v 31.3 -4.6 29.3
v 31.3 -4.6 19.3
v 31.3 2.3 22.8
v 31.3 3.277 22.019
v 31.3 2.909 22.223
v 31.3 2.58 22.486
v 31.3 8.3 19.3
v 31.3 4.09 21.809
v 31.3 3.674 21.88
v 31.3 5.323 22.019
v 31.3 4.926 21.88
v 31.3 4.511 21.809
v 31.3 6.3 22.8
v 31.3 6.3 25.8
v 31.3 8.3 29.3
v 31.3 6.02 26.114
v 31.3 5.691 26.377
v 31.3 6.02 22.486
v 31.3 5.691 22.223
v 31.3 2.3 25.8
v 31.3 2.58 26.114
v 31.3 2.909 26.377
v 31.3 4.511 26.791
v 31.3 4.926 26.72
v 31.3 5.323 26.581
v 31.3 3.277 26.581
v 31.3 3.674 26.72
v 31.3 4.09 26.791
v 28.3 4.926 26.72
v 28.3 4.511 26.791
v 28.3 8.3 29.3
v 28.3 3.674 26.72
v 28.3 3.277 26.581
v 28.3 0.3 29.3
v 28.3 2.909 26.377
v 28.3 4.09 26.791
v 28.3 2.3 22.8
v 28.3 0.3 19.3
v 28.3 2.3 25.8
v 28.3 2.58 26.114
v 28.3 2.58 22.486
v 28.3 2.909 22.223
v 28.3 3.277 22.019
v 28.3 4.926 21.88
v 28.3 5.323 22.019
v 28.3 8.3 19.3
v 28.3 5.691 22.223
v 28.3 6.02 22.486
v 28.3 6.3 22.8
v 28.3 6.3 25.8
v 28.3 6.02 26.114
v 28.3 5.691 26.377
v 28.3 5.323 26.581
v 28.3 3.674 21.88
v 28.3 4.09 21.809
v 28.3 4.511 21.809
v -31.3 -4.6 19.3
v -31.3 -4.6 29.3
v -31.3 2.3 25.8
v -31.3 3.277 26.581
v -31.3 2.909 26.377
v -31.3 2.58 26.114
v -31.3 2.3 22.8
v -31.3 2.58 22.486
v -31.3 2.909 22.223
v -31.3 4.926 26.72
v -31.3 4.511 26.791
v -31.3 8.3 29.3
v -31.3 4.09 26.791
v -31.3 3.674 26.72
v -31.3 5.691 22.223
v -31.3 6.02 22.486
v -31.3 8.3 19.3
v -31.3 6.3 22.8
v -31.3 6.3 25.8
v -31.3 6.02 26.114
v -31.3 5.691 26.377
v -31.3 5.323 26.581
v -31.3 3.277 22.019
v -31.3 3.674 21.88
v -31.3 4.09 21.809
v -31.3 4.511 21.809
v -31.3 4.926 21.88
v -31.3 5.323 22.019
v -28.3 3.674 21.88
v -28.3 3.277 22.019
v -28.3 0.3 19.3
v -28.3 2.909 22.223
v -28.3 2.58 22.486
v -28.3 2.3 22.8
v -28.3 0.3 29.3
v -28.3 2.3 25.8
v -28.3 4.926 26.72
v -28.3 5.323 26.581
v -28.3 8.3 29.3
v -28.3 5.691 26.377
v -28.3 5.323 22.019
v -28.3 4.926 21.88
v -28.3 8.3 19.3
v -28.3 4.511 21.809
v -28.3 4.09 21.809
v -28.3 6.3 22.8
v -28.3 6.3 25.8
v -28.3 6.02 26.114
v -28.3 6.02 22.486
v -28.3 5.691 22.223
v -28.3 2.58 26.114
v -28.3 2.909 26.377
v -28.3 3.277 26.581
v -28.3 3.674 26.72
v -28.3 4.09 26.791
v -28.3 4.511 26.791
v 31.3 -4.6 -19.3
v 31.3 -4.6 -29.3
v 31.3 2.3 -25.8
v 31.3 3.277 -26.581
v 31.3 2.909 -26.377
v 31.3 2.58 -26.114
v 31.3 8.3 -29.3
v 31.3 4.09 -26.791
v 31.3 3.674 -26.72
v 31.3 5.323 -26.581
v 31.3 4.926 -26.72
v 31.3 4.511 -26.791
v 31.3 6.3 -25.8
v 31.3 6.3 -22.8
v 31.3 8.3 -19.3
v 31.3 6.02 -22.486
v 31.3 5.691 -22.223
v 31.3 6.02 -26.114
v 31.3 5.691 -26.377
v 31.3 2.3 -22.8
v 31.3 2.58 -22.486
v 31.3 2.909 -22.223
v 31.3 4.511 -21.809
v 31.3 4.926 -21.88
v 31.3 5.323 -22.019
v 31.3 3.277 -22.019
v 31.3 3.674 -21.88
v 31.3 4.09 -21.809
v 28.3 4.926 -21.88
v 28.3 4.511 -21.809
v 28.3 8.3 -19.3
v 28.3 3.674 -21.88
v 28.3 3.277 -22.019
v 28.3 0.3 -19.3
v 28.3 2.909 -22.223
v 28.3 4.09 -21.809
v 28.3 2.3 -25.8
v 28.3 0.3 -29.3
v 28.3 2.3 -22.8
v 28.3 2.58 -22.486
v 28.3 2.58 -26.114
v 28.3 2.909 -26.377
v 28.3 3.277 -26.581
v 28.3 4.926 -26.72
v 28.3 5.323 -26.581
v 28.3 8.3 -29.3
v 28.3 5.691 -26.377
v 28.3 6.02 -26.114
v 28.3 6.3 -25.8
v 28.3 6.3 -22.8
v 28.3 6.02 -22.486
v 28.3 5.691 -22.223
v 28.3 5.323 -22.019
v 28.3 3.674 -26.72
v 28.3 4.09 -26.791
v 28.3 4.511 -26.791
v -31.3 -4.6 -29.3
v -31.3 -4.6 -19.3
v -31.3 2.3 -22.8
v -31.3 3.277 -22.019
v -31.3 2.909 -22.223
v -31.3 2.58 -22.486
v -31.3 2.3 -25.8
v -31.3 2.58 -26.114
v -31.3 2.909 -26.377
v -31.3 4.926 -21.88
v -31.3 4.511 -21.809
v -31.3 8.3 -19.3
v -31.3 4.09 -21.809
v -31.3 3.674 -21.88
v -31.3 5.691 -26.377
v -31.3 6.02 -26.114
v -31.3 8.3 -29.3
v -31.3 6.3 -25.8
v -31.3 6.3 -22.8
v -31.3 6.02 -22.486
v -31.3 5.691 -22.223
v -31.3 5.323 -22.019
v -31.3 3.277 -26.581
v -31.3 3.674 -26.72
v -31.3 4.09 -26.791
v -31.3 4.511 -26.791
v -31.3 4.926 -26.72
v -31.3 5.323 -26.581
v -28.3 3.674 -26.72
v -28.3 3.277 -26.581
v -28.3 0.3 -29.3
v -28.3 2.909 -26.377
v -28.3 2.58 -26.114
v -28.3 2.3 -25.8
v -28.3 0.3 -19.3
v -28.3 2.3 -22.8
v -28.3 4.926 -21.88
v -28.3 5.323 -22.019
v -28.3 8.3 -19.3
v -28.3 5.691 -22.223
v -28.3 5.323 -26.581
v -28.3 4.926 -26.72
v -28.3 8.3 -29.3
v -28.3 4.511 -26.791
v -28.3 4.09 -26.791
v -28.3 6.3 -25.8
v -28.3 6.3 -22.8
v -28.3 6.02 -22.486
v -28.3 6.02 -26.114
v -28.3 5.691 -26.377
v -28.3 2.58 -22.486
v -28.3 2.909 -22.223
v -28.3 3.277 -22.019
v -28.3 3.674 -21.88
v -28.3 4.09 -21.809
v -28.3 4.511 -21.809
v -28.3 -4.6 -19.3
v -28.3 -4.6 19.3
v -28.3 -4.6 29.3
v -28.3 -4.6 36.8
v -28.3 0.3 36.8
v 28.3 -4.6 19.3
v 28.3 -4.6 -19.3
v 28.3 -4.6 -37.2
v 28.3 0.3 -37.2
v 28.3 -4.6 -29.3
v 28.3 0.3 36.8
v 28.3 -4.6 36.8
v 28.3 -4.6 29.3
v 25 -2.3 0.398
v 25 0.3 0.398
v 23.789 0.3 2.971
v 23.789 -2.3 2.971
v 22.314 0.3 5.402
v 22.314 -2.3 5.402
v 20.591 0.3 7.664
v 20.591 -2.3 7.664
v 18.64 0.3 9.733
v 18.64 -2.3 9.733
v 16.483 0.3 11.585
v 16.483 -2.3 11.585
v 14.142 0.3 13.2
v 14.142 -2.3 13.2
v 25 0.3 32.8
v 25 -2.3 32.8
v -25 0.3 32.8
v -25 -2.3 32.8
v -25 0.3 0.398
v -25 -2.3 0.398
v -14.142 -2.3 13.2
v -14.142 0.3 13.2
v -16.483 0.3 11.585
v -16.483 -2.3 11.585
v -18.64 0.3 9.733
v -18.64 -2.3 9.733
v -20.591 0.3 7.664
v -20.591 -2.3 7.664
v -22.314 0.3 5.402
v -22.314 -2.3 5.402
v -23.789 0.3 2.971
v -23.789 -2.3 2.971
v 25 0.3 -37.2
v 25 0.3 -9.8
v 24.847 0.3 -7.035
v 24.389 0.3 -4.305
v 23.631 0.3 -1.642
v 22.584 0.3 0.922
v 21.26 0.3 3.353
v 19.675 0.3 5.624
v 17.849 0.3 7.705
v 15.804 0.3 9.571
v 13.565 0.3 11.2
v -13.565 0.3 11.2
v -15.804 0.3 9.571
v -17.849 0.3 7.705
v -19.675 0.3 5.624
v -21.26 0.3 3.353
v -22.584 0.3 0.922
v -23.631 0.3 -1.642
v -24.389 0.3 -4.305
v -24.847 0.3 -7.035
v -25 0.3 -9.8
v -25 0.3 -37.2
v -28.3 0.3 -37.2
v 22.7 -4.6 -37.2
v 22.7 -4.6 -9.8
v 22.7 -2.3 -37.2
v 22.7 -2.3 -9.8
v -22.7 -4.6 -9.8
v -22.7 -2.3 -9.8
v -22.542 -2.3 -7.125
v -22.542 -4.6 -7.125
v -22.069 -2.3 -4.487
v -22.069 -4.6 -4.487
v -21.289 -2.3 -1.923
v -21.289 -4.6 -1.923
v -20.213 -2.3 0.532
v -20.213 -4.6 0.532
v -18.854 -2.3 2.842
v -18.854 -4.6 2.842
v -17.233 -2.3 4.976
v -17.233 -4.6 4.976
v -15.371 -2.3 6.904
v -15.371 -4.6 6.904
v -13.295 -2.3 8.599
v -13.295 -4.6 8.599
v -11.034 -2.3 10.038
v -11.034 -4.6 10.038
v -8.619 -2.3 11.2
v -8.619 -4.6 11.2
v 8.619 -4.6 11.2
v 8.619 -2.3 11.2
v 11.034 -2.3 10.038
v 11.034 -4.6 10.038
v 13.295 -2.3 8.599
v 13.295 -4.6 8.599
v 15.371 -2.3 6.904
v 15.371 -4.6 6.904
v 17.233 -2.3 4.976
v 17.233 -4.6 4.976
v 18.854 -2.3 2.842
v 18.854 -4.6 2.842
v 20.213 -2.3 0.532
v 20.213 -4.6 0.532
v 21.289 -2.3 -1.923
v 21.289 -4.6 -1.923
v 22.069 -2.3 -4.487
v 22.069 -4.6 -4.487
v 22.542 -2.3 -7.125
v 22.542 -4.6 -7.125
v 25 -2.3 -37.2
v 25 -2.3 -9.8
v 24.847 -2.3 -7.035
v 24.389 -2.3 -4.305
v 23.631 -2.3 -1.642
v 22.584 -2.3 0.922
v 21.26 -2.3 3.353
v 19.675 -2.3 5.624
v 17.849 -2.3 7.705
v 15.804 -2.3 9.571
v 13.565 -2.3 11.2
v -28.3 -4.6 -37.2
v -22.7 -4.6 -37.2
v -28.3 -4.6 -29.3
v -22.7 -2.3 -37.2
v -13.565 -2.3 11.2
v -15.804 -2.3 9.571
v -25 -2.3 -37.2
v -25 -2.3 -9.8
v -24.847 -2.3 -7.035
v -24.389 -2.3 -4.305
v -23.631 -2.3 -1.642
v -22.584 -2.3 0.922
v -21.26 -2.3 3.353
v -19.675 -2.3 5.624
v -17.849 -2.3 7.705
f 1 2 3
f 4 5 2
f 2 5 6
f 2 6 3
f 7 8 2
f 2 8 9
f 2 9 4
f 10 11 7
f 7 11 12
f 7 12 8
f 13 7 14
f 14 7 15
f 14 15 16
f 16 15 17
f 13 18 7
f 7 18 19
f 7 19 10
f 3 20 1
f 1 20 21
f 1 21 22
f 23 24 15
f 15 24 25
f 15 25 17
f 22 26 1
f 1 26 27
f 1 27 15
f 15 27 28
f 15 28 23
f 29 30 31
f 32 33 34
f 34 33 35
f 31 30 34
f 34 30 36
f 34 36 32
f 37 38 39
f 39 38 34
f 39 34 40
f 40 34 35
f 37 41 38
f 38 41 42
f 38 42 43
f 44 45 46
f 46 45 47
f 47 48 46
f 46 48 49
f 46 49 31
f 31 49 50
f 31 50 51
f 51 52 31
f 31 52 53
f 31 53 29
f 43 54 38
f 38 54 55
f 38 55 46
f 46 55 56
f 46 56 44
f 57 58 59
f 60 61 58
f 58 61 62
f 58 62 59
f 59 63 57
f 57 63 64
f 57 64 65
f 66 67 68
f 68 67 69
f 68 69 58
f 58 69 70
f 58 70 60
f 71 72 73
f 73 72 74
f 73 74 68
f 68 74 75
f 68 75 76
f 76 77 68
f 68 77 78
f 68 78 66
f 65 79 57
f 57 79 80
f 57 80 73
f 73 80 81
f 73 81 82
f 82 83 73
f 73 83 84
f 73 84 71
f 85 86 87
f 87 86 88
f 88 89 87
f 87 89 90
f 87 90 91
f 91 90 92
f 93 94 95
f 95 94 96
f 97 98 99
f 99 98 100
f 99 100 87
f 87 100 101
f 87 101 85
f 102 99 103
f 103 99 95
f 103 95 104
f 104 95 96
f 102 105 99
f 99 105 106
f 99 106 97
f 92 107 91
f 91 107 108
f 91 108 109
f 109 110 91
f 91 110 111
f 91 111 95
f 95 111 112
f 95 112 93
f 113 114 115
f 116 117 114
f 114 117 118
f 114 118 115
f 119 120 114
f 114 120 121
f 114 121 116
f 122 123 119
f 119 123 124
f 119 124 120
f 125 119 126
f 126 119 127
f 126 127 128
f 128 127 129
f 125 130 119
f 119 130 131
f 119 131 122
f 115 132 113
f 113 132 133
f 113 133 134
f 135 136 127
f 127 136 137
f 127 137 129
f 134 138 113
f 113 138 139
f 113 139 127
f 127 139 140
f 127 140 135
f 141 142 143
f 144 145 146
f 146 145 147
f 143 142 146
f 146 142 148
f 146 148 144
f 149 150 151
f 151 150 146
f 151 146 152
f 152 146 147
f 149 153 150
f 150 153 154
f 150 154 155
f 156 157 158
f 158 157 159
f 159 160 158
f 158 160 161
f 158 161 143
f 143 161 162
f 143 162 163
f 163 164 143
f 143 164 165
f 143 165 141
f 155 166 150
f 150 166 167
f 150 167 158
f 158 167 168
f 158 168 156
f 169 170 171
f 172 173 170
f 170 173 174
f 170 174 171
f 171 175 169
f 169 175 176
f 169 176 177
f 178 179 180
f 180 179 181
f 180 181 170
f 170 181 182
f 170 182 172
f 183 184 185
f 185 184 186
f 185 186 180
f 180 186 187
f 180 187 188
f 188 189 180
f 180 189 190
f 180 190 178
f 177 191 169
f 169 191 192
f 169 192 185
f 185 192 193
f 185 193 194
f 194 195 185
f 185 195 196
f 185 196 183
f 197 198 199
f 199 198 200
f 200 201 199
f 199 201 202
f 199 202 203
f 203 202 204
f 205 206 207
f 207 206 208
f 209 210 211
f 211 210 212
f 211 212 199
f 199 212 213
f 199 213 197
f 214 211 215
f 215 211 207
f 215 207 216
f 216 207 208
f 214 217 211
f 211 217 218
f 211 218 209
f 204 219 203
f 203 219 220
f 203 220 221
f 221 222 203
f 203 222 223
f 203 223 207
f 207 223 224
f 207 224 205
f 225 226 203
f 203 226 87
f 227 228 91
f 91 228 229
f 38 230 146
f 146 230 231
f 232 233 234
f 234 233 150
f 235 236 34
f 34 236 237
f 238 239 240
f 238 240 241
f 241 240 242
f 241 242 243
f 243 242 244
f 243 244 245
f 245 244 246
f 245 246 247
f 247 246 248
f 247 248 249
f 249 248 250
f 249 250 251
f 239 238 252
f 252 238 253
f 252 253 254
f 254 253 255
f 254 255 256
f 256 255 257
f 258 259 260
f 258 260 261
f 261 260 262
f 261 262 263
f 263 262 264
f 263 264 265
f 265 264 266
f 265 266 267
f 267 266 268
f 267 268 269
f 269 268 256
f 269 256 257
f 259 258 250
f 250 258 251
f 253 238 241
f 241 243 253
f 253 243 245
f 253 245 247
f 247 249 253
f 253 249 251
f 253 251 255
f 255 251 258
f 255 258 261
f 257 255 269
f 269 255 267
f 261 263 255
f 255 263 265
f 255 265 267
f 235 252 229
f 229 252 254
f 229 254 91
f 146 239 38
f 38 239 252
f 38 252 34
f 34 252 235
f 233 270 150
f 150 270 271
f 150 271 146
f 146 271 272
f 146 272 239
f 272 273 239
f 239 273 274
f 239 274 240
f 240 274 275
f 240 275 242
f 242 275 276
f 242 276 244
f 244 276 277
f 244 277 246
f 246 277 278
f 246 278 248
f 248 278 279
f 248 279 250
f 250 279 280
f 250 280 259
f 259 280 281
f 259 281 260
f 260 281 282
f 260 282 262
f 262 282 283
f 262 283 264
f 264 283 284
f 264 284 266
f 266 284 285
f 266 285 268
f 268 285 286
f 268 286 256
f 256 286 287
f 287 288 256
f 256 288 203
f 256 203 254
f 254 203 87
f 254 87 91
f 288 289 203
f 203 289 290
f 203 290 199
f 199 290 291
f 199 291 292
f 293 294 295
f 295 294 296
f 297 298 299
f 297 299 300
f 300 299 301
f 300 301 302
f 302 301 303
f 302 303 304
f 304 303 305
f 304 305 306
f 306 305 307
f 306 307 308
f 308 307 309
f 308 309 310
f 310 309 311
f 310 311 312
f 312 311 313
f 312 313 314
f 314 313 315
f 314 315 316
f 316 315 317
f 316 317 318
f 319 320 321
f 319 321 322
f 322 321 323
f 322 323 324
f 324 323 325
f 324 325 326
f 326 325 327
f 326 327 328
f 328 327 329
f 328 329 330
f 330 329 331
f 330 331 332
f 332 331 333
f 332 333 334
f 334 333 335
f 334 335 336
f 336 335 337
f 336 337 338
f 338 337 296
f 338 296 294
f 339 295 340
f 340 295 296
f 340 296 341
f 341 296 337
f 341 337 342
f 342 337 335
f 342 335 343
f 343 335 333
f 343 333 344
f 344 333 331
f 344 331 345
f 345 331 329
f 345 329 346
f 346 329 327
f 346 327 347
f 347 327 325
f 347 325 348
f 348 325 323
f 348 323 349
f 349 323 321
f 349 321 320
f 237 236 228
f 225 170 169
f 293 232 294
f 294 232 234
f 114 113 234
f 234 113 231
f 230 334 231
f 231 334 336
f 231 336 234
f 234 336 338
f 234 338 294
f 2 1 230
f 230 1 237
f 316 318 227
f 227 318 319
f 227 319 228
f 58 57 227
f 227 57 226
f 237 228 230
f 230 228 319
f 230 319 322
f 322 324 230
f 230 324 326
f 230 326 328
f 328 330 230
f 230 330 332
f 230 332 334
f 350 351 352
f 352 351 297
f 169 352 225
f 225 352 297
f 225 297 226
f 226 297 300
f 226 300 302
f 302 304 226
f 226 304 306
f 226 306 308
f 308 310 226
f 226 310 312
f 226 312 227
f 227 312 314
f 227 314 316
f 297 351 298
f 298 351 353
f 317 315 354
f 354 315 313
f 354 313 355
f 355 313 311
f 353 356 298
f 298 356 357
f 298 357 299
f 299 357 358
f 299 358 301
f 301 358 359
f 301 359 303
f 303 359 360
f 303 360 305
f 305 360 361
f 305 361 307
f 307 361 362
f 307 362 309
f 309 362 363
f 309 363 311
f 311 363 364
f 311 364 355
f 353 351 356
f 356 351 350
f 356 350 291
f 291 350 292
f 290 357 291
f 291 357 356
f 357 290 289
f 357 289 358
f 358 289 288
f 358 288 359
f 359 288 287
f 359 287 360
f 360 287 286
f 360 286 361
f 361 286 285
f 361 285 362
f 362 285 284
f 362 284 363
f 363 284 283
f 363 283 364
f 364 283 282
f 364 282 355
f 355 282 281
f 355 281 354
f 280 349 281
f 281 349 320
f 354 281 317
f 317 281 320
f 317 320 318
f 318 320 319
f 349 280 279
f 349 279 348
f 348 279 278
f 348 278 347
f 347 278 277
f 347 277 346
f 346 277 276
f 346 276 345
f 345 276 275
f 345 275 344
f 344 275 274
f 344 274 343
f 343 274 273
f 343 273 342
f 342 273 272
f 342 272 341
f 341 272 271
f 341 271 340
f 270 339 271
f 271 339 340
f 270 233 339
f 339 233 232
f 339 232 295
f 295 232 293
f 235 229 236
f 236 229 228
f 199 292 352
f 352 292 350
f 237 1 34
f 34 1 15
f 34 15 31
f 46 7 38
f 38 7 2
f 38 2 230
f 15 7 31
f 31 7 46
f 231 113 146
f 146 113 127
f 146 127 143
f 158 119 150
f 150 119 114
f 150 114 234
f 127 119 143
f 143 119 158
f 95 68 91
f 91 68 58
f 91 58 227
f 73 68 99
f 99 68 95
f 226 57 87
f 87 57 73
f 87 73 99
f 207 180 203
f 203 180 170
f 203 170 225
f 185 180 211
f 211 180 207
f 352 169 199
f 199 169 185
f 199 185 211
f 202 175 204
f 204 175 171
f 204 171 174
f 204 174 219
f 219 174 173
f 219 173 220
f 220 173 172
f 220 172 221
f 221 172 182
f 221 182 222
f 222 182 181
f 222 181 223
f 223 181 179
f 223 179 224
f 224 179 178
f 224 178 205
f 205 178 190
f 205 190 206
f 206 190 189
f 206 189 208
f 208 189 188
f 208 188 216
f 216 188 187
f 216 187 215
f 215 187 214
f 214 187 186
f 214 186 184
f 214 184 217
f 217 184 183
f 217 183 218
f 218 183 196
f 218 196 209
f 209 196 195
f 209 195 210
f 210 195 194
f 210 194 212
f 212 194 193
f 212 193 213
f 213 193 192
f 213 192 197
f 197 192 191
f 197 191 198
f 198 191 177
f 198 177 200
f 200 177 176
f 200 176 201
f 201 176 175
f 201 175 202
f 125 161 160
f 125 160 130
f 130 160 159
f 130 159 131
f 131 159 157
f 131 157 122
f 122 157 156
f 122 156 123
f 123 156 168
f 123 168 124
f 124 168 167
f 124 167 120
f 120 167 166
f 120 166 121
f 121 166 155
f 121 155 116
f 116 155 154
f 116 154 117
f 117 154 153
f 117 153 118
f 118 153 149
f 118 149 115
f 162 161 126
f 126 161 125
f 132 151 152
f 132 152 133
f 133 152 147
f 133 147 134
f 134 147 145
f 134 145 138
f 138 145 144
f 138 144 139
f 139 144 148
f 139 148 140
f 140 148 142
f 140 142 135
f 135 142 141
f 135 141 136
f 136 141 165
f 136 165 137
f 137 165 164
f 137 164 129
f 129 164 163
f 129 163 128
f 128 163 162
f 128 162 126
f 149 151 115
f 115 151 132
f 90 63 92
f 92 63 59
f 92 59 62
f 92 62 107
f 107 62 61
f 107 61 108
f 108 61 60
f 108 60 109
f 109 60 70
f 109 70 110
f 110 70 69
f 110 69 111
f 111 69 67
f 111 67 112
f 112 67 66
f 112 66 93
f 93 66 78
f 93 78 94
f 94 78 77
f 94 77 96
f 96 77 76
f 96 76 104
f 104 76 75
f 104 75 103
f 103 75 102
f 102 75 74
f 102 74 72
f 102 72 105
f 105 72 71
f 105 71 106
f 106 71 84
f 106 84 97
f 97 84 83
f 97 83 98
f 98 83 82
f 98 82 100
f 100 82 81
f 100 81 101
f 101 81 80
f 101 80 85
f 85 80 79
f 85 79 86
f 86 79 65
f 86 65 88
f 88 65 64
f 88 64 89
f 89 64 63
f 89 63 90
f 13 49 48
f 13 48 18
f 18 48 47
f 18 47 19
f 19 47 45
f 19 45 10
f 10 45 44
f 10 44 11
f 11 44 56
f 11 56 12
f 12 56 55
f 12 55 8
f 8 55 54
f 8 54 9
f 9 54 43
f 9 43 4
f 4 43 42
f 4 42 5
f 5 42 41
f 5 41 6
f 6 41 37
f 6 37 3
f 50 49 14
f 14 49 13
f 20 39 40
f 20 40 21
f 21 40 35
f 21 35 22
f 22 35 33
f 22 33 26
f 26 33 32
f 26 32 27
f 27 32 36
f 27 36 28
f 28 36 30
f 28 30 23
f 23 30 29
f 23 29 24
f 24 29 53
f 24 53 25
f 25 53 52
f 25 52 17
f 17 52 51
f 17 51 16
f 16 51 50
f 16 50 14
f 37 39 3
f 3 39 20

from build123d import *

# Parameters (mm, degrees)
STOCK_BATTERY_START                           = -4.6
STOCK_BATTERY_AND_MICRO_COMPARTMENT_1_DEPTH   = 4.6
STOCK_BATTERY_AND_MICRO_COMPARTMENT_1_2_DEPTH = 2.3
BOSS_EXTRUDE1_START                           = -4.6
BOSS_EXTRUDE1_DEPTH                           = 4.6
CUT_EXTRUDE1_DEPTH                            = 2.3
BOSS_EXTRUDE2_DEPTH                           = 0.3
SKETCH4_W                                     = 74
SKETCH4_H                                     = 4.9
BOSS_EXTRUDE3_DEPTH                           = 0.3
BOSS_EXTRUDE4_START                           = -56.3
SKETCH4_2_W                                   = 74
SKETCH4_2_H                                   = 4.9
BOSS_EXTRUDE4_DEPTH                           = 0.3
SKETCH5_W                                     = 10
SKETCH5_H                                     = 12.9
BOSS_EXTRUDE5_DEPTH                           = 3
BOSS_EXTRUDE7_START                           = -56.6
SKETCH5_2_W                                   = 10
SKETCH5_2_H                                   = 12.9
BOSS_EXTRUDE7_DEPTH                           = 3
CUT_EXTRUDE2_DEPTH                            = 81
CUT_EXTRUDE2_DEPTH_BACK                       = 10
CUT_EXTRUDE3_DEPTH                            = 128
CUT_EXTRUDE3_DEPTH_BACK                       = 10
BOSS_EXTRUDE8_REACH                           = 51.27
BOSS_EXTRUDE8_DIRECTION_2_DEPTH               = 0.03
BOSS_EXTRUDE9_DEPTH                           = 2
SPLIT1_START                                  = 0.33
SPLIT1_DEPTH                                  = 2
SPLIT1_START_2                                = -2.3
SPLIT1_2_DEPTH                                = 2.63


# Read off the part's stored shape, not the designer's step: Stock-Battery and Micro compartment-1, Split1
with BuildPart() as part:
    # Stock-Battery and Micro compartment-1 ou → Stock-Battery and Micro compartment-1 (new body)
    with BuildSketch(Plane(origin=(0, 0, 0), x_dir=(1, 0, 0), z_dir=(0, 1, 0)).offset(STOCK_BATTERY_START)):
        with BuildLine():
            Line((-28, 37.2), (-28, -36.8))
            Line((-28, -36.8), (28, -36.8))
            Line((28, -36.8), (28, 37.2))
            Line((28, 37.2), (25, 37.2))
            Line((25, 37.2), (25, 9.8))
            ThreePointArc((25, 9.8), (0, -15.2), (-25, 9.8))
            Line((-25, 9.8), (-25, 37.2))
            Line((-25, 37.2), (-28, 37.2))
        make_face()
    extrude(amount=STOCK_BATTERY_AND_MICRO_COMPARTMENT_1_DEPTH)

    # Stock-Battery and Micro compartment- 2 → Stock-Battery and Micro compartment-1 2 (add)
    with BuildSketch(Plane(origin=(0, 0, 0), x_dir=(1, 0, 0), z_dir=(0, 1, 0)).offset(STOCK_BATTERY_START)):
        with BuildLine():
            Line((-22.7, 37.2), (-25, 37.2))
            Line((-25, 37.2), (-25, 9.8))
            ThreePointArc((-25, 9.8), (0, -15.2), (25, 9.8))
            Line((25, 9.8), (25, 37.2))
            Line((25, 37.2), (22.7, 37.2))
            Line((22.7, 37.2), (22.7, 9.8))
            ThreePointArc((22.7, 9.8), (0, -12.9), (-22.7, 9.8))
            Line((-22.7, 9.8), (-22.7, 37.2))
        make_face()
    extrude(amount=STOCK_BATTERY_AND_MICRO_COMPARTMENT_1_2_DEPTH)

    # Sketch2 → Boss-Extrude1 (add)
    with BuildSketch(Plane(origin=(0, 0, 0), x_dir=(1, 0, 0), z_dir=(0, 1, 0)).offset(BOSS_EXTRUDE1_START)):
        with BuildLine():
            Line((0, -11.2), (-13.564659966, -11.2))
            ThreePointArc((-13.564659966, -11.2), (0, -15.2), (13.564659966, -11.2))
            Line((13.564659966, -11.2), (0, -11.2))
        make_face()
    extrude(amount=BOSS_EXTRUDE1_DEPTH)

    # Sketch1 → Cut-Extrude1 (cut)
    with BuildSketch(Plane(origin=(0, 0, 0), x_dir=(1, 0, 0), z_dir=(0, 1, 0))):
        with BuildLine():
            Line((14.142135624, -13.2), (-14.142135624, -13.2))
            ThreePointArc((-14.142135624, -13.2), (-20.591241985, -7.66427077), (-25, -0.398039027))
            Line((-25, -0.398039027), (-25, -32.8))
            Line((-25, -32.8), (25, -32.8))
            Line((25, -32.8), (25, -0.398039027))
            ThreePointArc((25, -0.398039027), (20.591241985, -7.66427077), (14.142135624, -13.2))
        make_face()
    extrude(amount=-CUT_EXTRUDE1_DEPTH, mode=Mode.SUBTRACT)

    # Sketch3 → Boss-Extrude2 (add)
    with BuildSketch(Plane(origin=(0, 0, 0), x_dir=(1, 0, 0), z_dir=(0, 1, 0))):
        with BuildLine():
            Line((-25, 37.2), (-28, 37.2))
            Line((-28, 37.2), (-28, -36.8))
            Line((-28, -36.8), (28, -36.8))
            Line((28, -36.8), (28, 37.2))
            Line((28, 37.2), (25, 37.2))
            Line((25, 37.2), (25, 9.8))
            ThreePointArc((25, 9.8), (21.955824958, -2.155824958), (13.564659966, -11.2))
            Line((13.564659966, -11.2), (-13.564659966, -11.2))
            ThreePointArc((-13.564659966, -11.2), (-21.955824958, -2.155824958), (-25, 9.8))
            Line((-25, 9.8), (-25, 37.2))
        make_face()
        with BuildLine():
            Line((-25, -32.8), (25, -32.8))
            Line((25, -32.8), (25, -0.398039027))
            ThreePointArc((25, -0.398039027), (20.591241985, -7.66427077), (14.142135624, -13.2))
            Line((14.142135624, -13.2), (-14.142135624, -13.2))
            ThreePointArc((-14.142135624, -13.2), (-20.591241985, -7.66427077), (-25, -0.398039027))
            Line((-25, -0.398039027), (-25, -32.8))
        make_face(mode=Mode.SUBTRACT)
    extrude(amount=BOSS_EXTRUDE2_DEPTH)

    # Sketch4 → Boss-Extrude3 (add)
    with BuildSketch(Plane(origin=(28, 0, 0), x_dir=(0, 0, -1), z_dir=(1, 0, 0))):
        with Locations((0.2, -2.15)):
            Rectangle(SKETCH4_W, SKETCH4_H)
    extrude(amount=BOSS_EXTRUDE3_DEPTH)

    # Sketch4<2> → Boss-Extrude4 (add)
    with BuildSketch(Plane(origin=(28, 0, 0), x_dir=(0, 0, -1), z_dir=(1, 0, 0)).offset(BOSS_EXTRUDE4_START)):
        with Locations((0.2, -2.15)):
            Rectangle(SKETCH4_2_W, SKETCH4_2_H)
    extrude(amount=BOSS_EXTRUDE4_DEPTH)

    # Sketch5 → Boss-Extrude5 (add)
    with BuildSketch(Plane(origin=(28.3, 0, 0), x_dir=(0, 0, -1), z_dir=(1, 0, 0))):
        with Locations((-24.3, 1.85)):
            Rectangle(SKETCH5_W, SKETCH5_H)
        with Locations((24.3, 1.85)):
            Rectangle(SKETCH5_W, SKETCH5_H)
    extrude(amount=BOSS_EXTRUDE5_DEPTH)

    # Sketch5<2> → Boss-Extrude7 (add)
    with BuildSketch(Plane(origin=(28.3, 0, 0), x_dir=(0, 0, -1), z_dir=(1, 0, 0)).offset(BOSS_EXTRUDE7_START)):
        with Locations((-24.3, 1.85)):
            Rectangle(SKETCH5_2_W, SKETCH5_2_H)
        with Locations((24.3, 1.85)):
            Rectangle(SKETCH5_2_W, SKETCH5_2_H)
    extrude(amount=-BOSS_EXTRUDE7_DEPTH)

    # Sketch8 → Cut-Extrude2 (cut, two sides: drawn at the far end of the back side and taken through both)
    with BuildSketch(Plane(origin=(-28.3, 0, 0), x_dir=(0, 0, -1), z_dir=(1, 0, 0)).offset(-CUT_EXTRUDE2_DEPTH_BACK)):
        with BuildLine():
            Line((22.8, 2.3), (25.8, 2.3))
            ThreePointArc((25.8, 2.3), (26.8, 4.3), (25.8, 6.3))
            Line((25.8, 6.3), (22.8, 6.3))
            ThreePointArc((22.8, 6.3), (21.8, 4.3), (22.8, 2.3))
        make_face()
    extrude(amount=CUT_EXTRUDE2_DEPTH + CUT_EXTRUDE2_DEPTH_BACK, mode=Mode.SUBTRACT)

    # Sketch9 → Cut-Extrude3 (cut, two sides: drawn at the far end of the back side and taken through both)
    with BuildSketch(Plane(origin=(-28.3, 0, 0), x_dir=(0, 0, -1), z_dir=(1, 0, 0)).offset(-CUT_EXTRUDE3_DEPTH_BACK)):
        with BuildLine():
            Line((-25.8, 2.3), (-22.8, 2.3))
            ThreePointArc((-22.8, 2.3), (-21.8, 4.3), (-22.8, 6.3))
            Line((-22.8, 6.3), (-25.8, 6.3))
            ThreePointArc((-25.8, 6.3), (-26.8, 4.3), (-25.8, 2.3))
        make_face()
    extrude(amount=CUT_EXTRUDE3_DEPTH + CUT_EXTRUDE3_DEPTH_BACK, mode=Mode.SUBTRACT)


with BuildPart() as body_2:

    # Sketch10 → Boss-Extrude8 (new, up to next)
    with BuildSketch(Plane(origin=(0, 0.3, 0), x_dir=(1, 0, 0), z_dir=(0, 1, 0)), mode=Mode.PRIVATE) as boss_extrude8_sk1:
        with BuildLine():
            Line((14.142135624, -13.2), (-14.142135624, -13.2))
            ThreePointArc((-14.142135624, -13.2), (-20.180507814, -8.137310399), (-24.5, -1.546805718))
            Line((-24.5, -1.546805718), (-24.5, -5.716120649))
            ThreePointArc((-24.5, -5.716120649), (-20.163977484, -11.042600894), (-14.696938457, -15.2))
            Line((-14.696938457, -15.2), (14.696938457, -15.2))
            ThreePointArc((14.696938457, -15.2), (20.163977484, -11.042600894), (24.5, -5.716120649))
            Line((24.5, -5.716120649), (24.5, -1.546805718))
            ThreePointArc((24.5, -1.546805718), (20.180507814, -8.137310399), (14.142135624, -13.2))
        make_face()
    boss_extrude8_tool1 = extrude(boss_extrude8_sk1.sketch, amount=-BOSS_EXTRUDE8_REACH, mode=Mode.PRIVATE) - part.part
    add(boss_extrude8_tool1.solids().sort_by_distance((0, 0.3, 13.708666))[0])

    # Sketch10 → Boss-Extrude8 direction 2 (add)
    with BuildSketch(Plane(origin=(0, 0.3, 0), x_dir=(1, 0, 0), z_dir=(0, 1, 0))):
        with BuildLine():
            Line((14.142135624, -13.2), (-14.142135624, -13.2))
            ThreePointArc((-14.142135624, -13.2), (-20.180507814, -8.137310399), (-24.5, -1.546805718))
            Line((-24.5, -1.546805718), (-24.5, -5.716120649))
            ThreePointArc((-24.5, -5.716120649), (-20.163977484, -11.042600894), (-14.696938457, -15.2))
            Line((-14.696938457, -15.2), (14.696938457, -15.2))
            ThreePointArc((14.696938457, -15.2), (20.163977484, -11.042600894), (24.5, -5.716120649))
            Line((24.5, -5.716120649), (24.5, -1.546805718))
            ThreePointArc((24.5, -1.546805718), (20.180507814, -8.137310399), (14.142135624, -13.2))
        make_face()
    extrude(amount=BOSS_EXTRUDE8_DIRECTION_2_DEPTH)

    # Sketch11 → Boss-Extrude9 (add)
    with BuildSketch(Plane(origin=(0, 0.33, 0), x_dir=(1, 0, 0), z_dir=(0, 1, 0))):
        with BuildLine():
            Line((-24.5, 8.453194282), (-24.5, -5.716120649))
            ThreePointArc((-24.5, -5.716120649), (-20.163977484, -11.042600894), (-14.696938457, -15.2))
            Line((-14.696938457, -15.2), (14.696938457, -15.2))
            ThreePointArc((14.696938457, -15.2), (20.163977484, -11.042600894), (24.5, -5.716120649))
            Line((24.5, -5.716120649), (24.5, -1.546805718))
            Line((24.5, -1.546805718), (24.5, 8.453194282))
            Line((24.5, 8.453194282), (-24.5, 8.453194282))
        make_face()
    extrude(amount=BOSS_EXTRUDE9_DEPTH)

    # Split1 outline → Split1 (cut)
    with BuildSketch(Plane(origin=(0, 0, 0), x_dir=(1, 0, 0), z_dir=(0, 1, 0)).offset(SPLIT1_START)):
        with BuildLine():
            Line((24.5, -5.716120649), (24.5, 8.453194282))
            Line((24.5, 8.453194282), (-24.5, 8.453194282))
            Line((-24.5, 8.453194282), (-24.5, -5.716120649))
            ThreePointArc((-24.5, -5.716120649), (-20.163977484, -11.042600894), (-14.696938457, -15.2))
            Line((-14.696938457, -15.2), (14.696938457, -15.2))
            ThreePointArc((14.696938457, -15.2), (20.163977484, -11.042600894), (24.5, -5.716120649))
        make_face()
    extrude(amount=SPLIT1_DEPTH, mode=Mode.SUBTRACT)

    # Split1 2 outline → Split1 2 (cut)
    with BuildSketch(Plane(origin=(0, 0, 0), x_dir=(1, 0, 0), z_dir=(0, 1, 0)).offset(SPLIT1_START_2)):
        with BuildLine():
            Line((24.5, -5.716120649), (24.5, -1.546805718))
            ThreePointArc((24.5, -1.546805718), (20.180507814, -8.137310399), (14.142135624, -13.2))
            Line((14.142135624, -13.2), (-14.142135624, -13.2))
            ThreePointArc((-14.142135624, -13.2), (-20.180507814, -8.137310399), (-24.5, -1.546805718))
            Line((-24.5, -1.546805718), (-24.5, -5.716120649))
            ThreePointArc((-24.5, -5.716120649), (-20.163977484, -11.042600894), (-14.696938457, -15.2))
            Line((-14.696938457, -15.2), (14.696938457, -15.2))
            ThreePointArc((14.696938457, -15.2), (20.163977484, -11.042600894), (24.5, -5.716120649))
        make_face()
    extrude(amount=SPLIT1_2_DEPTH, mode=Mode.SUBTRACT)


solid = part.part
